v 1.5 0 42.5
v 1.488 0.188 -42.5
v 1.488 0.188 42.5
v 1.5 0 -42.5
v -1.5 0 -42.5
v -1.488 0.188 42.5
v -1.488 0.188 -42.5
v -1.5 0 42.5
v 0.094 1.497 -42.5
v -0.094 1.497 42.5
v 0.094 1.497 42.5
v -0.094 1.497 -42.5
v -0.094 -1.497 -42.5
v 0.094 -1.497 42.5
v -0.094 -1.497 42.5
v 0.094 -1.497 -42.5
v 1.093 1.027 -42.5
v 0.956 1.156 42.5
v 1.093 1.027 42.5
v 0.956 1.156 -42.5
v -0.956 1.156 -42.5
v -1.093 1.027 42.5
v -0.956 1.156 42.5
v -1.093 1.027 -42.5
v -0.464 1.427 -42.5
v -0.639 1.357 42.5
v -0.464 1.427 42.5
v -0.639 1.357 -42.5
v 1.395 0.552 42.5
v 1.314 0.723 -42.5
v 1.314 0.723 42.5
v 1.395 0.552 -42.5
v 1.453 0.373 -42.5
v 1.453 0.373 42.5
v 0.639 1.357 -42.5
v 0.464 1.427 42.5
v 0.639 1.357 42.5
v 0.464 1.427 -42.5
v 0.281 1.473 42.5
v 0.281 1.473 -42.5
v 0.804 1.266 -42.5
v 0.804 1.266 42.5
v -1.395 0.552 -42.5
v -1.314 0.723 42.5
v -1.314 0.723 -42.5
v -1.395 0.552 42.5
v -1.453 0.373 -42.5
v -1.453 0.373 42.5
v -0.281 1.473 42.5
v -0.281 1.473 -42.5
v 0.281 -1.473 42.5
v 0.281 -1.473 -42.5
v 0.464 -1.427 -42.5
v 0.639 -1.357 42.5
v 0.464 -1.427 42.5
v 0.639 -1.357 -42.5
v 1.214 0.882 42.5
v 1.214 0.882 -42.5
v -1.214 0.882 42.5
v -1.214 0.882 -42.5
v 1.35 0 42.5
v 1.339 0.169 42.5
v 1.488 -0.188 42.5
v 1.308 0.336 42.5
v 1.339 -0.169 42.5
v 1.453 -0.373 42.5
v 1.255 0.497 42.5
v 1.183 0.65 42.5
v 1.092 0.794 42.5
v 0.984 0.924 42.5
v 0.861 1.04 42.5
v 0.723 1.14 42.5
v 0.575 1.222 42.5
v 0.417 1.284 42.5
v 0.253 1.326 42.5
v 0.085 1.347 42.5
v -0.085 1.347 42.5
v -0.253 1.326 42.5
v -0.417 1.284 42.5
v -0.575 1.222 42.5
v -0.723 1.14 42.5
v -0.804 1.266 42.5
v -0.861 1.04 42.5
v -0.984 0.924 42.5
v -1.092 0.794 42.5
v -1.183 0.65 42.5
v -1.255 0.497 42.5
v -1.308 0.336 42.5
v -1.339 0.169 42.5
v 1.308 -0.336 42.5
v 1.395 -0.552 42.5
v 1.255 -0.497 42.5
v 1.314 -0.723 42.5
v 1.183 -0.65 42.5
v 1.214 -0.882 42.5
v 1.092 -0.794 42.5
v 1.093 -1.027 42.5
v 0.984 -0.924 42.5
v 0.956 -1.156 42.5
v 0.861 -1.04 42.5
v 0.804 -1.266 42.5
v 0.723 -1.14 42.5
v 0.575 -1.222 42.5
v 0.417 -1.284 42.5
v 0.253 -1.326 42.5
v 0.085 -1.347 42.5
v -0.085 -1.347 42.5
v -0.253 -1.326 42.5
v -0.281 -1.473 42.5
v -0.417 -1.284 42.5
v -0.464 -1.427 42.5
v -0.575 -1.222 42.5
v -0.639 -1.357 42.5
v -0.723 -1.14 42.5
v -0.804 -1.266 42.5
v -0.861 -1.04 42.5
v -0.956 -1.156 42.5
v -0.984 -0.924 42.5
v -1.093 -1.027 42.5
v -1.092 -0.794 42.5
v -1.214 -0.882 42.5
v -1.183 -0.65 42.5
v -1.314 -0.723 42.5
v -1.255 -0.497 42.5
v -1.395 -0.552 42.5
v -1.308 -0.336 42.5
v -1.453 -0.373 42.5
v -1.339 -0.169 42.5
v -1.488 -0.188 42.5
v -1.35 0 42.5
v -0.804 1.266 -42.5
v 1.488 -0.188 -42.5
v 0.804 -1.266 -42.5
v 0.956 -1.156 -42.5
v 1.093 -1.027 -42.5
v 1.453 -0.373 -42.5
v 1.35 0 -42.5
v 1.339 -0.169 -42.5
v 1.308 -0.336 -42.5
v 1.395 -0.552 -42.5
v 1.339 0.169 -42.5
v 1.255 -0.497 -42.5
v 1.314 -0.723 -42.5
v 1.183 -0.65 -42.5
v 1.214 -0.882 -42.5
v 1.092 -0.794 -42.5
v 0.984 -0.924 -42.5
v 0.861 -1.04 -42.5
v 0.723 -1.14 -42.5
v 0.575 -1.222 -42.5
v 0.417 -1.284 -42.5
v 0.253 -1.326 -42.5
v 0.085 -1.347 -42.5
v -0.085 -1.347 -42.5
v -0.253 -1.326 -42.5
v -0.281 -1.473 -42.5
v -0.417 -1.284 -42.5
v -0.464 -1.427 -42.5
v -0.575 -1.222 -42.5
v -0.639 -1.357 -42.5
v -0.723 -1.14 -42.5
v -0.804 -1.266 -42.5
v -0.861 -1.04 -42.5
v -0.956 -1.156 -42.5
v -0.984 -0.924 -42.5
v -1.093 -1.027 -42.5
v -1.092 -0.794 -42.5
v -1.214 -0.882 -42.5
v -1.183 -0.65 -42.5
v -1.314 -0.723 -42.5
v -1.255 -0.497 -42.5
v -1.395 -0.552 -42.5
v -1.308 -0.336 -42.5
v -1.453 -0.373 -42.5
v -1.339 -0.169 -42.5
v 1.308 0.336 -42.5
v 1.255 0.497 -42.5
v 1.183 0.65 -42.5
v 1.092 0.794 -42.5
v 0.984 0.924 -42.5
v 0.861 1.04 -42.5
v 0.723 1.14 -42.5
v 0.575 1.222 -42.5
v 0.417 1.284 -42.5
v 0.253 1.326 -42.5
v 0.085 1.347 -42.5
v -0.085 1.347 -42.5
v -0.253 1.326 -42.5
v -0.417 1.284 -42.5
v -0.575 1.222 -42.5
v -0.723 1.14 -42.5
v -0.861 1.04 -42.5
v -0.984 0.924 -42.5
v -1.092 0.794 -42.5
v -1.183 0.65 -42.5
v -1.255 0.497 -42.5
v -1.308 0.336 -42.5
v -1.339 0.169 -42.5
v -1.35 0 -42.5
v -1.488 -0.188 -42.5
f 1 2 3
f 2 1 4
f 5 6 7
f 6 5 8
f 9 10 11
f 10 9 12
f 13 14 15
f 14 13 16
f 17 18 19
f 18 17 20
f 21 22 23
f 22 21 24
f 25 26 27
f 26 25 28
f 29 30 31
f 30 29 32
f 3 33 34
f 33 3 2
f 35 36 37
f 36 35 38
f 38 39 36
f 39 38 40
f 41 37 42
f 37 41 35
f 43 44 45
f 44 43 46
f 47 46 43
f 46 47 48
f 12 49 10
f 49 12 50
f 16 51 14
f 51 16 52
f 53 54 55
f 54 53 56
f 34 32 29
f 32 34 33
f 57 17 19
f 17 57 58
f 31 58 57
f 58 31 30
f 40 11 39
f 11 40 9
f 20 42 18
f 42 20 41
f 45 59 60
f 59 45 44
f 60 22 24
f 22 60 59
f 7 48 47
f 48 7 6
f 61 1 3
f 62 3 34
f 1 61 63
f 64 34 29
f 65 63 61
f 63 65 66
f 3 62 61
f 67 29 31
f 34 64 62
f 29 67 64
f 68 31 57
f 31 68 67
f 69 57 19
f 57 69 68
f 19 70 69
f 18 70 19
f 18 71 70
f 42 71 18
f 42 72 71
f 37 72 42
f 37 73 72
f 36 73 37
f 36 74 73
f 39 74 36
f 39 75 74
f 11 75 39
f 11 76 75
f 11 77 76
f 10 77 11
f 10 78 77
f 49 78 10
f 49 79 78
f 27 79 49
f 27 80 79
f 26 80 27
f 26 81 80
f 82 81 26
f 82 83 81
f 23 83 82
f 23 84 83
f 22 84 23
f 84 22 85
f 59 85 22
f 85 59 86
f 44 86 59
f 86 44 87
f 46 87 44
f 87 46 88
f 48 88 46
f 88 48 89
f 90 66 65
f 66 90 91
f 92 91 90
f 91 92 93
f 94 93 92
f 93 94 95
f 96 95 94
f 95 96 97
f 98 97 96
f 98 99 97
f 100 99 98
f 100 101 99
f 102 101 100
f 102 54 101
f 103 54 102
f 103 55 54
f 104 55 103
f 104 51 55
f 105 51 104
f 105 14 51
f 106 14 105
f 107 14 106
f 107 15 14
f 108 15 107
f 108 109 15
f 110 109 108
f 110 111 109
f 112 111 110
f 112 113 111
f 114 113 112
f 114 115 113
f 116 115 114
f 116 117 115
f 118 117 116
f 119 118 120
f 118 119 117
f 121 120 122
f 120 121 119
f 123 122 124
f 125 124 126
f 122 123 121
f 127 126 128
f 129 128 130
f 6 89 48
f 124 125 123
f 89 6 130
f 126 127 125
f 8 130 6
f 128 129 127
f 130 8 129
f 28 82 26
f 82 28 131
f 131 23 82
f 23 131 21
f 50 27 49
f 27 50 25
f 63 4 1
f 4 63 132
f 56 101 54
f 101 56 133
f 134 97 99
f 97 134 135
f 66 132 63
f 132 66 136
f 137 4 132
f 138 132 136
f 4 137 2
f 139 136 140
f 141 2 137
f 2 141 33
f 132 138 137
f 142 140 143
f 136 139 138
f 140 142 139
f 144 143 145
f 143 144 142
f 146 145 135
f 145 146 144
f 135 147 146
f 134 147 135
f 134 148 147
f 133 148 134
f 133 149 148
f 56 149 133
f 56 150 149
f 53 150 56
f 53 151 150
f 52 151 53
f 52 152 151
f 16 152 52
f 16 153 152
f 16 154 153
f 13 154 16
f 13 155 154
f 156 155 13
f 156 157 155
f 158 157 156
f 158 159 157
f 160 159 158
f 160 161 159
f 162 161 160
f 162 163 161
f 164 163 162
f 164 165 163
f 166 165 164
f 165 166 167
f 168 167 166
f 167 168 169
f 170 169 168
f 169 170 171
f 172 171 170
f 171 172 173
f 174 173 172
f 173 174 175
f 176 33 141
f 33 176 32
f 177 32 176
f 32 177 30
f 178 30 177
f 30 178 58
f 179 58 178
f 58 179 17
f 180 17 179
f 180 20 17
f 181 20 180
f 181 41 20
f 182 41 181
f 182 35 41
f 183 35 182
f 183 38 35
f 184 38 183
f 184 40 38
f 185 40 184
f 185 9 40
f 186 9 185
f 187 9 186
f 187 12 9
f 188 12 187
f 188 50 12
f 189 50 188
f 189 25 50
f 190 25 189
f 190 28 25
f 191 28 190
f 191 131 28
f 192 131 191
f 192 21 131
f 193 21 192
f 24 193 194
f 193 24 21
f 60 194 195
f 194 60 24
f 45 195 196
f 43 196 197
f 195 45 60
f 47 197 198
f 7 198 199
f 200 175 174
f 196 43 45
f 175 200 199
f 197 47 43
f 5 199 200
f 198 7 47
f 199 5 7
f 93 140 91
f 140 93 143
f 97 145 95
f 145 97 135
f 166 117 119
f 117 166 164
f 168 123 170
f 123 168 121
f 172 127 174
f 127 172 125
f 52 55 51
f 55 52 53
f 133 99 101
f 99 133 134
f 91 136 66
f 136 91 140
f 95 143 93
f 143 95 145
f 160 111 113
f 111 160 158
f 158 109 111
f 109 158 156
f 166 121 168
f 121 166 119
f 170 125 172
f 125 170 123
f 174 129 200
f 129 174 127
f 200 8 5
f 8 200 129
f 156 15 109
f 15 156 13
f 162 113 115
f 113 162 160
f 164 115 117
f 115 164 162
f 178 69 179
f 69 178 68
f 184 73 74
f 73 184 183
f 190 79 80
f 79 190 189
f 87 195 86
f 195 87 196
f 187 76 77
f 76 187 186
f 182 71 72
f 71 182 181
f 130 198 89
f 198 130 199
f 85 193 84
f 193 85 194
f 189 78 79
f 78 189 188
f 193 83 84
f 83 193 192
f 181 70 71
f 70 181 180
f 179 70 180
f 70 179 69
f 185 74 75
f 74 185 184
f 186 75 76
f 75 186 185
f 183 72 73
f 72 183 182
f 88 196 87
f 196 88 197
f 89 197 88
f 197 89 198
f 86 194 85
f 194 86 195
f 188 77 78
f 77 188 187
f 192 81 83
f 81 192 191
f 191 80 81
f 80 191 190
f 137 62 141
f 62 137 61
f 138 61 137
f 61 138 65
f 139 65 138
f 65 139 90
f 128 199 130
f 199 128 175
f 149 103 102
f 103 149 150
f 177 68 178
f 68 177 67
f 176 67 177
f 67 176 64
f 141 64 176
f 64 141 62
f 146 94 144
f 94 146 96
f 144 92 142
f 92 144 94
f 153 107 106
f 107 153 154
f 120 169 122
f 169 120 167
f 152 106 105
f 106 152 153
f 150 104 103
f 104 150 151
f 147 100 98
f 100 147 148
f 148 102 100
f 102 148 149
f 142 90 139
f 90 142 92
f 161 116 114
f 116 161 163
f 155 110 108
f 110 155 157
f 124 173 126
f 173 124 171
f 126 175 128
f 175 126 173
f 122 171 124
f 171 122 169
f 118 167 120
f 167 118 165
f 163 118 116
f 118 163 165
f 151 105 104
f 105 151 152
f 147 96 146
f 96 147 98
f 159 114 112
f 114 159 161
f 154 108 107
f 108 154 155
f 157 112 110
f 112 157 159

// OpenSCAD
$fn = 50;


difference() {
	union() {
		translate(v = [0, 0, -42.5000000000]) {
			cylinder(h = 85, r = 1.5000000000);
		}
	}
	union() {
		translate(v = [0, 0, -100.0000000000]) {
			cylinder(h = 200, r = 1.3500000000);
		}
	}
}
